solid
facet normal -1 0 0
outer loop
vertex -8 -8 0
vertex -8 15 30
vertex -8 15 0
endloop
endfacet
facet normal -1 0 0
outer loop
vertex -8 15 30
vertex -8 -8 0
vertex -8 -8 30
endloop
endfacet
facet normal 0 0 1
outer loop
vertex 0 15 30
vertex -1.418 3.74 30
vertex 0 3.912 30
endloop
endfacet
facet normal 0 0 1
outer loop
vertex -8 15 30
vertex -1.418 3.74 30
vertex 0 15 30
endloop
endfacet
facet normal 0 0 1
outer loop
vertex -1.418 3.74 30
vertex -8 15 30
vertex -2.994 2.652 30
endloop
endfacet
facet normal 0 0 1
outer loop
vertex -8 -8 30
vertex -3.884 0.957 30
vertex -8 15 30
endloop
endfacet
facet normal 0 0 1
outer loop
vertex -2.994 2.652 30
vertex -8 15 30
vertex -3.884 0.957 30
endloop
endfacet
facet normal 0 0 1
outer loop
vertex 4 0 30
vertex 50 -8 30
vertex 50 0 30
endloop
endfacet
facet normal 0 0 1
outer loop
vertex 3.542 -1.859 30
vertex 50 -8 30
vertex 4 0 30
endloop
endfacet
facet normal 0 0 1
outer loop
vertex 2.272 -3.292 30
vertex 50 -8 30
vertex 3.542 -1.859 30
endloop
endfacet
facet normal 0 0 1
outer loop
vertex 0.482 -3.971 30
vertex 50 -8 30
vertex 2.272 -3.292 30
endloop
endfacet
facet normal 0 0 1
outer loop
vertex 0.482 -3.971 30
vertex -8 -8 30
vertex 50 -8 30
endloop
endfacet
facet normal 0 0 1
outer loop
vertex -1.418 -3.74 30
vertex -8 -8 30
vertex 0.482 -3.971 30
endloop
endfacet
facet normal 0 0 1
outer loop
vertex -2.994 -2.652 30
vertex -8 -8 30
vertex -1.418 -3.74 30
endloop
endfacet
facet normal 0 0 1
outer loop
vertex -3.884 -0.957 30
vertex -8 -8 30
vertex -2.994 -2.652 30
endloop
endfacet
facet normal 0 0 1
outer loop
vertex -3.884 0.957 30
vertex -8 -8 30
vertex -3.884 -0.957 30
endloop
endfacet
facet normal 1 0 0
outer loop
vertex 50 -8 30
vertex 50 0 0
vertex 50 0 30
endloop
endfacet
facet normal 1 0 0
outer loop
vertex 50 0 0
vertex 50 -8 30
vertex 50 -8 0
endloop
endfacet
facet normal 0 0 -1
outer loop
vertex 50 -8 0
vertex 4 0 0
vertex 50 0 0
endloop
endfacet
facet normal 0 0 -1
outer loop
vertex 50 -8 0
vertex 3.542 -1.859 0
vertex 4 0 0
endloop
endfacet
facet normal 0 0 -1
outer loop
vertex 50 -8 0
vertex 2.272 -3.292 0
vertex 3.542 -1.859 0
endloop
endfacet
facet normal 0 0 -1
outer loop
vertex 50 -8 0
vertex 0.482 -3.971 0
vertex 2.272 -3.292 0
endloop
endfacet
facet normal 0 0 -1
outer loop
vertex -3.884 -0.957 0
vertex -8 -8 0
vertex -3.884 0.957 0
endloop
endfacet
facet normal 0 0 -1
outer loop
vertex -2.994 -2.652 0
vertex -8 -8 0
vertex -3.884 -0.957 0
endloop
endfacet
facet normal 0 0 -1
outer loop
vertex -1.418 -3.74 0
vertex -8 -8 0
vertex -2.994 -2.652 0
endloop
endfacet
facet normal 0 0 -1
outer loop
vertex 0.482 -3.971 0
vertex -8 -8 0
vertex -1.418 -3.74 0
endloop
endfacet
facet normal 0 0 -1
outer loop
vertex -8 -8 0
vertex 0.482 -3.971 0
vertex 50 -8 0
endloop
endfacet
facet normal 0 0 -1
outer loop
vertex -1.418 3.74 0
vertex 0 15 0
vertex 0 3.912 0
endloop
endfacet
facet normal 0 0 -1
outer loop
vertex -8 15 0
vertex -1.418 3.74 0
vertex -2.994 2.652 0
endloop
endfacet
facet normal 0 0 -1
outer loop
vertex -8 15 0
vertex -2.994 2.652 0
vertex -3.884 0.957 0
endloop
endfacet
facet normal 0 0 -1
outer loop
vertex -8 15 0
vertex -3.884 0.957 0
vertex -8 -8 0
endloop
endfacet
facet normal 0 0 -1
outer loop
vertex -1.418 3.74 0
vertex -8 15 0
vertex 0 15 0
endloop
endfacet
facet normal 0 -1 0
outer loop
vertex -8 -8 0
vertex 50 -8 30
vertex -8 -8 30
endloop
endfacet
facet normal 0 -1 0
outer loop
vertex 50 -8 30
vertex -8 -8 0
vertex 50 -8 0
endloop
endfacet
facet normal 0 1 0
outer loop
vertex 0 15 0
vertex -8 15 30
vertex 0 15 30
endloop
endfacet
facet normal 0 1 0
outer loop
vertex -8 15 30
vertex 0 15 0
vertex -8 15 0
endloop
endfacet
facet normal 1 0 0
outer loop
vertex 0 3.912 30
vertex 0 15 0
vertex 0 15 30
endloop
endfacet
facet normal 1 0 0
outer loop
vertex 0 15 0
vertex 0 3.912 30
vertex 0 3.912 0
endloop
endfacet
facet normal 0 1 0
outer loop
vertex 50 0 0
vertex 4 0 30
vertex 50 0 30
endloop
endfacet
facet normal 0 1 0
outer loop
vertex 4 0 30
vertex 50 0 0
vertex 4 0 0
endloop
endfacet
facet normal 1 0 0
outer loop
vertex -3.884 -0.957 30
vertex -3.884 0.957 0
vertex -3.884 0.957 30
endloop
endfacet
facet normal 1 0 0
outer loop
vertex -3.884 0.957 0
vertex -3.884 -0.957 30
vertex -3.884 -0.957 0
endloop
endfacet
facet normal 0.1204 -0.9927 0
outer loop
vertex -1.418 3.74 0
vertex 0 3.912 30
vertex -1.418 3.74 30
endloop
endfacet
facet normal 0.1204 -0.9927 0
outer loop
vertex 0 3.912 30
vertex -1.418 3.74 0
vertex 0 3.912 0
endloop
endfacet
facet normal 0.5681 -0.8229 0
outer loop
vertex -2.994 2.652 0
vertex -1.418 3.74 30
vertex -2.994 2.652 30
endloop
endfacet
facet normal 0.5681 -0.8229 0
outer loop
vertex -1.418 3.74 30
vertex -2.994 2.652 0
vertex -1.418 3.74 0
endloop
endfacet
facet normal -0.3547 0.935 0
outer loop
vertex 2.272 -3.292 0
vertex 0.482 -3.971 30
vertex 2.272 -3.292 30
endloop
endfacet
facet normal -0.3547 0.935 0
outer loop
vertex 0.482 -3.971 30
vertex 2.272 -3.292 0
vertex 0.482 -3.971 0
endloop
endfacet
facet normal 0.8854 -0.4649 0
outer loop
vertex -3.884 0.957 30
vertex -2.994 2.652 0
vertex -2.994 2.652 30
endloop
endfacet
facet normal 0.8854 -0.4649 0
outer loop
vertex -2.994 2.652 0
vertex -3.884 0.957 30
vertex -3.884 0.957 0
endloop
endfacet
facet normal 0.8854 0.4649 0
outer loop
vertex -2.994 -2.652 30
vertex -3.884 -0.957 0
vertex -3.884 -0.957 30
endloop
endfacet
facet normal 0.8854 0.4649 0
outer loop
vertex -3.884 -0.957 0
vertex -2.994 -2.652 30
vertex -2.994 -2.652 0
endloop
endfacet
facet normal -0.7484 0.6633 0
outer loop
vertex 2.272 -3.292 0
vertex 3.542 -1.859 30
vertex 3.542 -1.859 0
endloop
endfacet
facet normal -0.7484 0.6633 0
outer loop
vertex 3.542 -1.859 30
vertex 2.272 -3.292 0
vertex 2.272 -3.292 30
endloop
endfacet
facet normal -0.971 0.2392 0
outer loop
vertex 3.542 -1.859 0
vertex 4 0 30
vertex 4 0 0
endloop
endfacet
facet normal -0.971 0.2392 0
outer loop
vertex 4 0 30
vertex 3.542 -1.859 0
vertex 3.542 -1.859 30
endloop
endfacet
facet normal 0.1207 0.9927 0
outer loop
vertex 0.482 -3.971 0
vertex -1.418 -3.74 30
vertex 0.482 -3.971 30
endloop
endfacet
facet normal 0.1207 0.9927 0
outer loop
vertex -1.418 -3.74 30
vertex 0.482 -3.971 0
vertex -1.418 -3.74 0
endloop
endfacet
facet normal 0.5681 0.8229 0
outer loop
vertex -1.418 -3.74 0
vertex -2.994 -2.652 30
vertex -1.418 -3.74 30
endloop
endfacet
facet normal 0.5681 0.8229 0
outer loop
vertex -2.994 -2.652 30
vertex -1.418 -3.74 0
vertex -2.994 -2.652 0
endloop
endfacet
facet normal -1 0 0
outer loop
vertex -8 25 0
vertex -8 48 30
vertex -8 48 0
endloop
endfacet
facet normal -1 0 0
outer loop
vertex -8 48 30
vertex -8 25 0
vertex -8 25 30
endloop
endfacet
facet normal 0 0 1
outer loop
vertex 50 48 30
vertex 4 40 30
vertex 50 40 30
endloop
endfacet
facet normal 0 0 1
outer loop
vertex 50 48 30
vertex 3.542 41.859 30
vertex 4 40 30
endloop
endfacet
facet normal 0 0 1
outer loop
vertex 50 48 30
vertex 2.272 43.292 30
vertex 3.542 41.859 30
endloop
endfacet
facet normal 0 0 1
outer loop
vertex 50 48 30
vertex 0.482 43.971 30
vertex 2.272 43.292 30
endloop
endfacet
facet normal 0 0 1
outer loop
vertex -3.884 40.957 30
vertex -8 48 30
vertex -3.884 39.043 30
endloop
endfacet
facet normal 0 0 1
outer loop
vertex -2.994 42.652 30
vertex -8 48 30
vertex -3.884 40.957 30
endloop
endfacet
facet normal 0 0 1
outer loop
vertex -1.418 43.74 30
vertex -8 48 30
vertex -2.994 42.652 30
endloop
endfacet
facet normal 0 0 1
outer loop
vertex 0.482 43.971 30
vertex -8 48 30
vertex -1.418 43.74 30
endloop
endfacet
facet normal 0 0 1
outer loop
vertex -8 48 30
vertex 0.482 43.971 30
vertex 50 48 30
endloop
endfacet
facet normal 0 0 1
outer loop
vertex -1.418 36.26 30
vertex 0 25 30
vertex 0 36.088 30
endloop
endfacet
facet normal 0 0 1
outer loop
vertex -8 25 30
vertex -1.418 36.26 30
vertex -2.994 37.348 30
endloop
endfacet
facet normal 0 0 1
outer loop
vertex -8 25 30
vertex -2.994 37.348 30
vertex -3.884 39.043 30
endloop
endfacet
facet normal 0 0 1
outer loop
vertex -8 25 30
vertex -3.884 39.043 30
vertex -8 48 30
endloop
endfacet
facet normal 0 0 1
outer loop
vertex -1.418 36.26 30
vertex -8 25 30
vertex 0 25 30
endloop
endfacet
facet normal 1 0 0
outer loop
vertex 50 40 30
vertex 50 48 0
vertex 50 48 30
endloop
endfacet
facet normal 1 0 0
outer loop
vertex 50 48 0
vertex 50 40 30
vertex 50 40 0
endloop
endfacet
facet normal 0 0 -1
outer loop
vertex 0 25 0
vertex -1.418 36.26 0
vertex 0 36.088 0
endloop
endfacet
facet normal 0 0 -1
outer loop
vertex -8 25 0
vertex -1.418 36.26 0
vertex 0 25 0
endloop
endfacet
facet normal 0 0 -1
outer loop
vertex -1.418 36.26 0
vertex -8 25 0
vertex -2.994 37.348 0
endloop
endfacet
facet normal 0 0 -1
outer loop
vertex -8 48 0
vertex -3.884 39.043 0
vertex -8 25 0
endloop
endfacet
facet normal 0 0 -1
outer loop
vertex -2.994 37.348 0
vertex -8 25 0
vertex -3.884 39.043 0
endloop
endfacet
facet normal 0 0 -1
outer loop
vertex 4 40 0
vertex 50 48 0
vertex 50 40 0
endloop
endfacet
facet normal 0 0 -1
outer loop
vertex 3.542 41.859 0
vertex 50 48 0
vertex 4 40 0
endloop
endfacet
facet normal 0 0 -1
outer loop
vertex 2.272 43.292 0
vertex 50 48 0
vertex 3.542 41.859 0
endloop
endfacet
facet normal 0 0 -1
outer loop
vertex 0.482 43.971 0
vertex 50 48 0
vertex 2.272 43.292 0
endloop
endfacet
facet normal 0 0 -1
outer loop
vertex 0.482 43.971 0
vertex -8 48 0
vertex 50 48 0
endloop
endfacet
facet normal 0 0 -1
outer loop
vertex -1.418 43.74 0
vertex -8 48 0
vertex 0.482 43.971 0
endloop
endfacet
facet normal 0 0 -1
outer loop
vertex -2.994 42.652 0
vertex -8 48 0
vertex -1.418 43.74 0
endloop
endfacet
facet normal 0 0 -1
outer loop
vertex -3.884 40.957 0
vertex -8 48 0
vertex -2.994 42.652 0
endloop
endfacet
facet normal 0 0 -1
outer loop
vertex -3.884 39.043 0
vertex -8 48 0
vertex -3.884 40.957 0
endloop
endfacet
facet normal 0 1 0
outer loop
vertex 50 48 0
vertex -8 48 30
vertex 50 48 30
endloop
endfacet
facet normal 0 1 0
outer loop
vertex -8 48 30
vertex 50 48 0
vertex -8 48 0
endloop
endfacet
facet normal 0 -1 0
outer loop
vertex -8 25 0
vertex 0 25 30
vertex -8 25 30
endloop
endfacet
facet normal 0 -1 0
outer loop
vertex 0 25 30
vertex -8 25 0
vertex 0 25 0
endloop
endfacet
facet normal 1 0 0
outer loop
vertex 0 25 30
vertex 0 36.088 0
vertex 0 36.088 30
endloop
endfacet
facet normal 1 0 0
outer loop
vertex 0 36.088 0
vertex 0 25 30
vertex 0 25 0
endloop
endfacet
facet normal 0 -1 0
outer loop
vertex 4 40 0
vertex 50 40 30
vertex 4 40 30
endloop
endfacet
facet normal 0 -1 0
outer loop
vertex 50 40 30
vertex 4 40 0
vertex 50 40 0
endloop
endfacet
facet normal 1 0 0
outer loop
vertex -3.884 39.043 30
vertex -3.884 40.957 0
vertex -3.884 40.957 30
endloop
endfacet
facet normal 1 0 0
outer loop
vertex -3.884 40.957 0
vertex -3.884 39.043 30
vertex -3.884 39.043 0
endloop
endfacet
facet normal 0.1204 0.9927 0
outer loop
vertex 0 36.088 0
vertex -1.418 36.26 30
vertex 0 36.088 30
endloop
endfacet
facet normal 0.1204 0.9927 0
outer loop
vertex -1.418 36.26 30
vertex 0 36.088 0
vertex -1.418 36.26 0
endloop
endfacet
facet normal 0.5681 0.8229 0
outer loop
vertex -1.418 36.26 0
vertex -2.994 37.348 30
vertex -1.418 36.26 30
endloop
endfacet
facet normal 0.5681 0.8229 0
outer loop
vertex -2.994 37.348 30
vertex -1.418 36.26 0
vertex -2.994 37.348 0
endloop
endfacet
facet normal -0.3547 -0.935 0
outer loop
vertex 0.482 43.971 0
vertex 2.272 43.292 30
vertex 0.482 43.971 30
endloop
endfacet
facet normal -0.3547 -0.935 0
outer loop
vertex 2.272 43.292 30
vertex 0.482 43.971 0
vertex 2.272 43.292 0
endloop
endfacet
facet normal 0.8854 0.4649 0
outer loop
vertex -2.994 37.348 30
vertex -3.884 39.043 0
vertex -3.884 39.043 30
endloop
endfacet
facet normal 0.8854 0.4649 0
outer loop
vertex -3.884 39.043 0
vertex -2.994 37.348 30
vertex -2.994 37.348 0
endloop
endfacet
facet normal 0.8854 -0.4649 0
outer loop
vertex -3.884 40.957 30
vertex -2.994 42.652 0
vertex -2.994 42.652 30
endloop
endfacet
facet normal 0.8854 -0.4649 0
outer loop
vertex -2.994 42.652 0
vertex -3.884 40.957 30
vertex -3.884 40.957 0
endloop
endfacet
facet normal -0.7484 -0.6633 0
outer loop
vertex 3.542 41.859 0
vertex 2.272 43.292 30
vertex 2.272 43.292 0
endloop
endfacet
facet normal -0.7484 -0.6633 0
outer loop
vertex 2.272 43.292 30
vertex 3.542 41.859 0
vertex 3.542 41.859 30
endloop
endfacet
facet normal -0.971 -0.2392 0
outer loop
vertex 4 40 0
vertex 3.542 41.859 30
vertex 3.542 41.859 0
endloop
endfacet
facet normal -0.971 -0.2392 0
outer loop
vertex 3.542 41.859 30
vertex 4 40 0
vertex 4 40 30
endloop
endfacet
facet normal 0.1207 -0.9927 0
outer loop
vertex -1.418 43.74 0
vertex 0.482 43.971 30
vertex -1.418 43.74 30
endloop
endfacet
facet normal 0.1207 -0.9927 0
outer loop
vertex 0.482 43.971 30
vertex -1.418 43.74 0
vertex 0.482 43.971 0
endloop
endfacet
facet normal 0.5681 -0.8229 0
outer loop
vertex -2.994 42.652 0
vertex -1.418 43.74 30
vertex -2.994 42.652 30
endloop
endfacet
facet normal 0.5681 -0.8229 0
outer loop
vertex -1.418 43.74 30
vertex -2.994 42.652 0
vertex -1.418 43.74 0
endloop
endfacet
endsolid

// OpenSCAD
module blocker() {
    difference() {
        translate([-8, -8, 0]) cube([50+8, 15+8, 30]);
        cube([50, 15, 30]);
        cylinder(r=4, h=30);
    }
}

translate([0,  0, 0]) blocker();
translate([0, 40, 0]) mirror([0,1,0]) blocker();
